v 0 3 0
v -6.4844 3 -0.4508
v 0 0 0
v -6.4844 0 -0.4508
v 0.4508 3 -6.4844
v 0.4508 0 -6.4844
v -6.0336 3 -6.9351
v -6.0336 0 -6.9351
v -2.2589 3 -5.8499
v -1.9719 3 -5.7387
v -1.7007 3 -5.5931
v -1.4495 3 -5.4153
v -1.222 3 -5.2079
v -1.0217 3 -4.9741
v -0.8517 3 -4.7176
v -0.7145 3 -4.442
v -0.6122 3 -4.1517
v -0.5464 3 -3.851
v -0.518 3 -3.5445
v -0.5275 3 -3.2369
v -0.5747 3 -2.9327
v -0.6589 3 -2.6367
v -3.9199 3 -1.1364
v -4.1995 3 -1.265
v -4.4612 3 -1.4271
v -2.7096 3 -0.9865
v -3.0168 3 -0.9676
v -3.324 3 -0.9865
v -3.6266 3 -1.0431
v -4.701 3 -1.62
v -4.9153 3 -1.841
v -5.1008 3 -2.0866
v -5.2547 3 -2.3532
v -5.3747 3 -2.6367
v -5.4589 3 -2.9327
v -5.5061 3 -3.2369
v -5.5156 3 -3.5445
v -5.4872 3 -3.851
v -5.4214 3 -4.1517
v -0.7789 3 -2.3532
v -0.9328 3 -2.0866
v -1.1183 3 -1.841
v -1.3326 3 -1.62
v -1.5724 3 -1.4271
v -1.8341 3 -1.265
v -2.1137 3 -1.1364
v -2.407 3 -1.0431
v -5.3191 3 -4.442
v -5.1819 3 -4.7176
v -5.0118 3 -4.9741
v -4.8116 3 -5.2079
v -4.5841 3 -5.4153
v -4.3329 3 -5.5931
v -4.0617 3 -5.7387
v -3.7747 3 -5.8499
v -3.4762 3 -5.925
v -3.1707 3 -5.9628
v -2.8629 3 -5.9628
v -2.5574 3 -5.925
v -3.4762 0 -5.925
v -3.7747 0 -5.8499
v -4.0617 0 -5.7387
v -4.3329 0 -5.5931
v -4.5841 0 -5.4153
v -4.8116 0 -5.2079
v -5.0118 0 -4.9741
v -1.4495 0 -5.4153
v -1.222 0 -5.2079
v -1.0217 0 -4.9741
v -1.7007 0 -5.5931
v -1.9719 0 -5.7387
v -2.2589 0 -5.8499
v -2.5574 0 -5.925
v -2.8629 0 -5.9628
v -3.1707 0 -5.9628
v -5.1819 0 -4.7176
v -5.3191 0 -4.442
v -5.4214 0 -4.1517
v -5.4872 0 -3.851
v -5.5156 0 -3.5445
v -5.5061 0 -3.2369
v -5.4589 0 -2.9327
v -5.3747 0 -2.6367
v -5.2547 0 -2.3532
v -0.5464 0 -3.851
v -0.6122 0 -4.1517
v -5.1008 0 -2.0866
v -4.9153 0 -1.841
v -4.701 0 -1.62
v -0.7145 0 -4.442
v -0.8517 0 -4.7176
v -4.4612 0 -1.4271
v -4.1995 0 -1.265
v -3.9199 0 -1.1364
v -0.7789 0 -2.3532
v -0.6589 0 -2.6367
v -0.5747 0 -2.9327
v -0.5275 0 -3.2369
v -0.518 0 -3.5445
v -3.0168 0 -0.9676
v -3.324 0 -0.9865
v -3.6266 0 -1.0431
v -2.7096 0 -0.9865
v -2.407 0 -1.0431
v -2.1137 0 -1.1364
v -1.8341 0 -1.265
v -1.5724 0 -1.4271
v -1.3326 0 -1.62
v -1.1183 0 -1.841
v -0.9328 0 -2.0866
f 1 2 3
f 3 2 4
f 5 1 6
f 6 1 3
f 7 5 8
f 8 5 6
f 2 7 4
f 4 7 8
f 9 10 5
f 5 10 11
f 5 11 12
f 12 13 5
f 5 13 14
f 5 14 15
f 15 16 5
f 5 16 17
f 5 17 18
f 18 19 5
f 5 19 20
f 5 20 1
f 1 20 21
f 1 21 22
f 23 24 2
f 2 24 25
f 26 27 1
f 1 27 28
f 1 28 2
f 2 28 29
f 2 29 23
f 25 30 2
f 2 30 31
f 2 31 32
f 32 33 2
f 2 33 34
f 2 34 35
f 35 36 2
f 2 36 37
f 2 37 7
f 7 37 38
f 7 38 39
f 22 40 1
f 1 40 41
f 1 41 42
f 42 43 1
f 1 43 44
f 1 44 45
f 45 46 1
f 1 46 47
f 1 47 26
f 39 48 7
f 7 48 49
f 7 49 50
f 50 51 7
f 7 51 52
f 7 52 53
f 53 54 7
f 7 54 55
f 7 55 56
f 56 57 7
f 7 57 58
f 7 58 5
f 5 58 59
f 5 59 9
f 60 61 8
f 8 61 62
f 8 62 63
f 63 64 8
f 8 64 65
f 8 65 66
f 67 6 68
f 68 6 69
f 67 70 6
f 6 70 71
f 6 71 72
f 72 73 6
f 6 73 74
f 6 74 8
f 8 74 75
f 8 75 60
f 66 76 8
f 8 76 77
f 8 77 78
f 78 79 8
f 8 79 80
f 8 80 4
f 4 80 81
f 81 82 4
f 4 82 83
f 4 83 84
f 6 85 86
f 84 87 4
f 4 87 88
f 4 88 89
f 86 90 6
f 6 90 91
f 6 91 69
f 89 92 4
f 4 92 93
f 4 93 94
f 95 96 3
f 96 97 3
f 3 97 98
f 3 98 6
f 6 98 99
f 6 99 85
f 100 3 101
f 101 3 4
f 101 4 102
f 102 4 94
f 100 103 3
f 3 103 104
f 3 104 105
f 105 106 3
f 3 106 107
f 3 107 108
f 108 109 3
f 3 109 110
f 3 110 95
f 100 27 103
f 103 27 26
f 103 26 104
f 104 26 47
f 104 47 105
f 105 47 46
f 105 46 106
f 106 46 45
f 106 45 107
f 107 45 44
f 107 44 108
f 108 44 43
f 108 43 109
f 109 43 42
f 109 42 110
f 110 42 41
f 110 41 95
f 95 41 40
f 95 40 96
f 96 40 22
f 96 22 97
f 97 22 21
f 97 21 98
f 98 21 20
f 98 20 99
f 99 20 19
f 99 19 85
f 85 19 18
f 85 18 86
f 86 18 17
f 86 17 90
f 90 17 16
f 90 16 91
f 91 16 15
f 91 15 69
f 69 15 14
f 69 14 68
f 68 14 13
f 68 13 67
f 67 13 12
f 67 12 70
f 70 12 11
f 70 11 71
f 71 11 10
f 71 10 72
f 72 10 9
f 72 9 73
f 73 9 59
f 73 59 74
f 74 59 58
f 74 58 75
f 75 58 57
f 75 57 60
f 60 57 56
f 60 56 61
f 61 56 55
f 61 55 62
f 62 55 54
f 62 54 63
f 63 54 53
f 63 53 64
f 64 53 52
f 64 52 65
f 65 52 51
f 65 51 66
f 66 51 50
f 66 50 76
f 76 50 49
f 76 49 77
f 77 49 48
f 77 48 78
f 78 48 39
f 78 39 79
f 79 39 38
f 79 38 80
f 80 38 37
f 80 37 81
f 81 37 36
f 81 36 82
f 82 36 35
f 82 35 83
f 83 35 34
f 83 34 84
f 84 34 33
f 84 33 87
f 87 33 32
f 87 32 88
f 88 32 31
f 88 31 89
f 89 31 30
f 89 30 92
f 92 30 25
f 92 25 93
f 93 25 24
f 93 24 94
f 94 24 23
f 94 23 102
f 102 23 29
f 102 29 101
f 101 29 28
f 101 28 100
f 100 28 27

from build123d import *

# Parameters (mm, degrees)
BOSS_EXTRUDE1_DEPTH = 3
SKETCH3_R           = 2.5
CUT_EXTRUDE1_DEPTH  = 3


with BuildPart() as part:
    # Sketch2 → Boss-Extrude1 (new body)
    with BuildSketch(Plane(origin=(0, 0, 0), x_dir=(1, 0, 0), z_dir=(0, 1, 0))):
        Polygon((0, 0), (0.450772745, 6.484350695), (-6.03357795, 6.93512344), (-6.484350695, 0.450772745), align=None)
    extrude(amount=BOSS_EXTRUDE1_DEPTH)

    # Sketch3 → Cut-Extrude1 (cut)
    with BuildSketch(Plane(origin=(0, 3, 0), x_dir=(1, 0, 0), z_dir=(0, 1, 0))):
        with Locations(Location((-3.016788975, 3.46756172, 0), (0, 0, 270))):
            Circle(SKETCH3_R)
    extrude(amount=-CUT_EXTRUDE1_DEPTH, mode=Mode.SUBTRACT)


solid = part.part
